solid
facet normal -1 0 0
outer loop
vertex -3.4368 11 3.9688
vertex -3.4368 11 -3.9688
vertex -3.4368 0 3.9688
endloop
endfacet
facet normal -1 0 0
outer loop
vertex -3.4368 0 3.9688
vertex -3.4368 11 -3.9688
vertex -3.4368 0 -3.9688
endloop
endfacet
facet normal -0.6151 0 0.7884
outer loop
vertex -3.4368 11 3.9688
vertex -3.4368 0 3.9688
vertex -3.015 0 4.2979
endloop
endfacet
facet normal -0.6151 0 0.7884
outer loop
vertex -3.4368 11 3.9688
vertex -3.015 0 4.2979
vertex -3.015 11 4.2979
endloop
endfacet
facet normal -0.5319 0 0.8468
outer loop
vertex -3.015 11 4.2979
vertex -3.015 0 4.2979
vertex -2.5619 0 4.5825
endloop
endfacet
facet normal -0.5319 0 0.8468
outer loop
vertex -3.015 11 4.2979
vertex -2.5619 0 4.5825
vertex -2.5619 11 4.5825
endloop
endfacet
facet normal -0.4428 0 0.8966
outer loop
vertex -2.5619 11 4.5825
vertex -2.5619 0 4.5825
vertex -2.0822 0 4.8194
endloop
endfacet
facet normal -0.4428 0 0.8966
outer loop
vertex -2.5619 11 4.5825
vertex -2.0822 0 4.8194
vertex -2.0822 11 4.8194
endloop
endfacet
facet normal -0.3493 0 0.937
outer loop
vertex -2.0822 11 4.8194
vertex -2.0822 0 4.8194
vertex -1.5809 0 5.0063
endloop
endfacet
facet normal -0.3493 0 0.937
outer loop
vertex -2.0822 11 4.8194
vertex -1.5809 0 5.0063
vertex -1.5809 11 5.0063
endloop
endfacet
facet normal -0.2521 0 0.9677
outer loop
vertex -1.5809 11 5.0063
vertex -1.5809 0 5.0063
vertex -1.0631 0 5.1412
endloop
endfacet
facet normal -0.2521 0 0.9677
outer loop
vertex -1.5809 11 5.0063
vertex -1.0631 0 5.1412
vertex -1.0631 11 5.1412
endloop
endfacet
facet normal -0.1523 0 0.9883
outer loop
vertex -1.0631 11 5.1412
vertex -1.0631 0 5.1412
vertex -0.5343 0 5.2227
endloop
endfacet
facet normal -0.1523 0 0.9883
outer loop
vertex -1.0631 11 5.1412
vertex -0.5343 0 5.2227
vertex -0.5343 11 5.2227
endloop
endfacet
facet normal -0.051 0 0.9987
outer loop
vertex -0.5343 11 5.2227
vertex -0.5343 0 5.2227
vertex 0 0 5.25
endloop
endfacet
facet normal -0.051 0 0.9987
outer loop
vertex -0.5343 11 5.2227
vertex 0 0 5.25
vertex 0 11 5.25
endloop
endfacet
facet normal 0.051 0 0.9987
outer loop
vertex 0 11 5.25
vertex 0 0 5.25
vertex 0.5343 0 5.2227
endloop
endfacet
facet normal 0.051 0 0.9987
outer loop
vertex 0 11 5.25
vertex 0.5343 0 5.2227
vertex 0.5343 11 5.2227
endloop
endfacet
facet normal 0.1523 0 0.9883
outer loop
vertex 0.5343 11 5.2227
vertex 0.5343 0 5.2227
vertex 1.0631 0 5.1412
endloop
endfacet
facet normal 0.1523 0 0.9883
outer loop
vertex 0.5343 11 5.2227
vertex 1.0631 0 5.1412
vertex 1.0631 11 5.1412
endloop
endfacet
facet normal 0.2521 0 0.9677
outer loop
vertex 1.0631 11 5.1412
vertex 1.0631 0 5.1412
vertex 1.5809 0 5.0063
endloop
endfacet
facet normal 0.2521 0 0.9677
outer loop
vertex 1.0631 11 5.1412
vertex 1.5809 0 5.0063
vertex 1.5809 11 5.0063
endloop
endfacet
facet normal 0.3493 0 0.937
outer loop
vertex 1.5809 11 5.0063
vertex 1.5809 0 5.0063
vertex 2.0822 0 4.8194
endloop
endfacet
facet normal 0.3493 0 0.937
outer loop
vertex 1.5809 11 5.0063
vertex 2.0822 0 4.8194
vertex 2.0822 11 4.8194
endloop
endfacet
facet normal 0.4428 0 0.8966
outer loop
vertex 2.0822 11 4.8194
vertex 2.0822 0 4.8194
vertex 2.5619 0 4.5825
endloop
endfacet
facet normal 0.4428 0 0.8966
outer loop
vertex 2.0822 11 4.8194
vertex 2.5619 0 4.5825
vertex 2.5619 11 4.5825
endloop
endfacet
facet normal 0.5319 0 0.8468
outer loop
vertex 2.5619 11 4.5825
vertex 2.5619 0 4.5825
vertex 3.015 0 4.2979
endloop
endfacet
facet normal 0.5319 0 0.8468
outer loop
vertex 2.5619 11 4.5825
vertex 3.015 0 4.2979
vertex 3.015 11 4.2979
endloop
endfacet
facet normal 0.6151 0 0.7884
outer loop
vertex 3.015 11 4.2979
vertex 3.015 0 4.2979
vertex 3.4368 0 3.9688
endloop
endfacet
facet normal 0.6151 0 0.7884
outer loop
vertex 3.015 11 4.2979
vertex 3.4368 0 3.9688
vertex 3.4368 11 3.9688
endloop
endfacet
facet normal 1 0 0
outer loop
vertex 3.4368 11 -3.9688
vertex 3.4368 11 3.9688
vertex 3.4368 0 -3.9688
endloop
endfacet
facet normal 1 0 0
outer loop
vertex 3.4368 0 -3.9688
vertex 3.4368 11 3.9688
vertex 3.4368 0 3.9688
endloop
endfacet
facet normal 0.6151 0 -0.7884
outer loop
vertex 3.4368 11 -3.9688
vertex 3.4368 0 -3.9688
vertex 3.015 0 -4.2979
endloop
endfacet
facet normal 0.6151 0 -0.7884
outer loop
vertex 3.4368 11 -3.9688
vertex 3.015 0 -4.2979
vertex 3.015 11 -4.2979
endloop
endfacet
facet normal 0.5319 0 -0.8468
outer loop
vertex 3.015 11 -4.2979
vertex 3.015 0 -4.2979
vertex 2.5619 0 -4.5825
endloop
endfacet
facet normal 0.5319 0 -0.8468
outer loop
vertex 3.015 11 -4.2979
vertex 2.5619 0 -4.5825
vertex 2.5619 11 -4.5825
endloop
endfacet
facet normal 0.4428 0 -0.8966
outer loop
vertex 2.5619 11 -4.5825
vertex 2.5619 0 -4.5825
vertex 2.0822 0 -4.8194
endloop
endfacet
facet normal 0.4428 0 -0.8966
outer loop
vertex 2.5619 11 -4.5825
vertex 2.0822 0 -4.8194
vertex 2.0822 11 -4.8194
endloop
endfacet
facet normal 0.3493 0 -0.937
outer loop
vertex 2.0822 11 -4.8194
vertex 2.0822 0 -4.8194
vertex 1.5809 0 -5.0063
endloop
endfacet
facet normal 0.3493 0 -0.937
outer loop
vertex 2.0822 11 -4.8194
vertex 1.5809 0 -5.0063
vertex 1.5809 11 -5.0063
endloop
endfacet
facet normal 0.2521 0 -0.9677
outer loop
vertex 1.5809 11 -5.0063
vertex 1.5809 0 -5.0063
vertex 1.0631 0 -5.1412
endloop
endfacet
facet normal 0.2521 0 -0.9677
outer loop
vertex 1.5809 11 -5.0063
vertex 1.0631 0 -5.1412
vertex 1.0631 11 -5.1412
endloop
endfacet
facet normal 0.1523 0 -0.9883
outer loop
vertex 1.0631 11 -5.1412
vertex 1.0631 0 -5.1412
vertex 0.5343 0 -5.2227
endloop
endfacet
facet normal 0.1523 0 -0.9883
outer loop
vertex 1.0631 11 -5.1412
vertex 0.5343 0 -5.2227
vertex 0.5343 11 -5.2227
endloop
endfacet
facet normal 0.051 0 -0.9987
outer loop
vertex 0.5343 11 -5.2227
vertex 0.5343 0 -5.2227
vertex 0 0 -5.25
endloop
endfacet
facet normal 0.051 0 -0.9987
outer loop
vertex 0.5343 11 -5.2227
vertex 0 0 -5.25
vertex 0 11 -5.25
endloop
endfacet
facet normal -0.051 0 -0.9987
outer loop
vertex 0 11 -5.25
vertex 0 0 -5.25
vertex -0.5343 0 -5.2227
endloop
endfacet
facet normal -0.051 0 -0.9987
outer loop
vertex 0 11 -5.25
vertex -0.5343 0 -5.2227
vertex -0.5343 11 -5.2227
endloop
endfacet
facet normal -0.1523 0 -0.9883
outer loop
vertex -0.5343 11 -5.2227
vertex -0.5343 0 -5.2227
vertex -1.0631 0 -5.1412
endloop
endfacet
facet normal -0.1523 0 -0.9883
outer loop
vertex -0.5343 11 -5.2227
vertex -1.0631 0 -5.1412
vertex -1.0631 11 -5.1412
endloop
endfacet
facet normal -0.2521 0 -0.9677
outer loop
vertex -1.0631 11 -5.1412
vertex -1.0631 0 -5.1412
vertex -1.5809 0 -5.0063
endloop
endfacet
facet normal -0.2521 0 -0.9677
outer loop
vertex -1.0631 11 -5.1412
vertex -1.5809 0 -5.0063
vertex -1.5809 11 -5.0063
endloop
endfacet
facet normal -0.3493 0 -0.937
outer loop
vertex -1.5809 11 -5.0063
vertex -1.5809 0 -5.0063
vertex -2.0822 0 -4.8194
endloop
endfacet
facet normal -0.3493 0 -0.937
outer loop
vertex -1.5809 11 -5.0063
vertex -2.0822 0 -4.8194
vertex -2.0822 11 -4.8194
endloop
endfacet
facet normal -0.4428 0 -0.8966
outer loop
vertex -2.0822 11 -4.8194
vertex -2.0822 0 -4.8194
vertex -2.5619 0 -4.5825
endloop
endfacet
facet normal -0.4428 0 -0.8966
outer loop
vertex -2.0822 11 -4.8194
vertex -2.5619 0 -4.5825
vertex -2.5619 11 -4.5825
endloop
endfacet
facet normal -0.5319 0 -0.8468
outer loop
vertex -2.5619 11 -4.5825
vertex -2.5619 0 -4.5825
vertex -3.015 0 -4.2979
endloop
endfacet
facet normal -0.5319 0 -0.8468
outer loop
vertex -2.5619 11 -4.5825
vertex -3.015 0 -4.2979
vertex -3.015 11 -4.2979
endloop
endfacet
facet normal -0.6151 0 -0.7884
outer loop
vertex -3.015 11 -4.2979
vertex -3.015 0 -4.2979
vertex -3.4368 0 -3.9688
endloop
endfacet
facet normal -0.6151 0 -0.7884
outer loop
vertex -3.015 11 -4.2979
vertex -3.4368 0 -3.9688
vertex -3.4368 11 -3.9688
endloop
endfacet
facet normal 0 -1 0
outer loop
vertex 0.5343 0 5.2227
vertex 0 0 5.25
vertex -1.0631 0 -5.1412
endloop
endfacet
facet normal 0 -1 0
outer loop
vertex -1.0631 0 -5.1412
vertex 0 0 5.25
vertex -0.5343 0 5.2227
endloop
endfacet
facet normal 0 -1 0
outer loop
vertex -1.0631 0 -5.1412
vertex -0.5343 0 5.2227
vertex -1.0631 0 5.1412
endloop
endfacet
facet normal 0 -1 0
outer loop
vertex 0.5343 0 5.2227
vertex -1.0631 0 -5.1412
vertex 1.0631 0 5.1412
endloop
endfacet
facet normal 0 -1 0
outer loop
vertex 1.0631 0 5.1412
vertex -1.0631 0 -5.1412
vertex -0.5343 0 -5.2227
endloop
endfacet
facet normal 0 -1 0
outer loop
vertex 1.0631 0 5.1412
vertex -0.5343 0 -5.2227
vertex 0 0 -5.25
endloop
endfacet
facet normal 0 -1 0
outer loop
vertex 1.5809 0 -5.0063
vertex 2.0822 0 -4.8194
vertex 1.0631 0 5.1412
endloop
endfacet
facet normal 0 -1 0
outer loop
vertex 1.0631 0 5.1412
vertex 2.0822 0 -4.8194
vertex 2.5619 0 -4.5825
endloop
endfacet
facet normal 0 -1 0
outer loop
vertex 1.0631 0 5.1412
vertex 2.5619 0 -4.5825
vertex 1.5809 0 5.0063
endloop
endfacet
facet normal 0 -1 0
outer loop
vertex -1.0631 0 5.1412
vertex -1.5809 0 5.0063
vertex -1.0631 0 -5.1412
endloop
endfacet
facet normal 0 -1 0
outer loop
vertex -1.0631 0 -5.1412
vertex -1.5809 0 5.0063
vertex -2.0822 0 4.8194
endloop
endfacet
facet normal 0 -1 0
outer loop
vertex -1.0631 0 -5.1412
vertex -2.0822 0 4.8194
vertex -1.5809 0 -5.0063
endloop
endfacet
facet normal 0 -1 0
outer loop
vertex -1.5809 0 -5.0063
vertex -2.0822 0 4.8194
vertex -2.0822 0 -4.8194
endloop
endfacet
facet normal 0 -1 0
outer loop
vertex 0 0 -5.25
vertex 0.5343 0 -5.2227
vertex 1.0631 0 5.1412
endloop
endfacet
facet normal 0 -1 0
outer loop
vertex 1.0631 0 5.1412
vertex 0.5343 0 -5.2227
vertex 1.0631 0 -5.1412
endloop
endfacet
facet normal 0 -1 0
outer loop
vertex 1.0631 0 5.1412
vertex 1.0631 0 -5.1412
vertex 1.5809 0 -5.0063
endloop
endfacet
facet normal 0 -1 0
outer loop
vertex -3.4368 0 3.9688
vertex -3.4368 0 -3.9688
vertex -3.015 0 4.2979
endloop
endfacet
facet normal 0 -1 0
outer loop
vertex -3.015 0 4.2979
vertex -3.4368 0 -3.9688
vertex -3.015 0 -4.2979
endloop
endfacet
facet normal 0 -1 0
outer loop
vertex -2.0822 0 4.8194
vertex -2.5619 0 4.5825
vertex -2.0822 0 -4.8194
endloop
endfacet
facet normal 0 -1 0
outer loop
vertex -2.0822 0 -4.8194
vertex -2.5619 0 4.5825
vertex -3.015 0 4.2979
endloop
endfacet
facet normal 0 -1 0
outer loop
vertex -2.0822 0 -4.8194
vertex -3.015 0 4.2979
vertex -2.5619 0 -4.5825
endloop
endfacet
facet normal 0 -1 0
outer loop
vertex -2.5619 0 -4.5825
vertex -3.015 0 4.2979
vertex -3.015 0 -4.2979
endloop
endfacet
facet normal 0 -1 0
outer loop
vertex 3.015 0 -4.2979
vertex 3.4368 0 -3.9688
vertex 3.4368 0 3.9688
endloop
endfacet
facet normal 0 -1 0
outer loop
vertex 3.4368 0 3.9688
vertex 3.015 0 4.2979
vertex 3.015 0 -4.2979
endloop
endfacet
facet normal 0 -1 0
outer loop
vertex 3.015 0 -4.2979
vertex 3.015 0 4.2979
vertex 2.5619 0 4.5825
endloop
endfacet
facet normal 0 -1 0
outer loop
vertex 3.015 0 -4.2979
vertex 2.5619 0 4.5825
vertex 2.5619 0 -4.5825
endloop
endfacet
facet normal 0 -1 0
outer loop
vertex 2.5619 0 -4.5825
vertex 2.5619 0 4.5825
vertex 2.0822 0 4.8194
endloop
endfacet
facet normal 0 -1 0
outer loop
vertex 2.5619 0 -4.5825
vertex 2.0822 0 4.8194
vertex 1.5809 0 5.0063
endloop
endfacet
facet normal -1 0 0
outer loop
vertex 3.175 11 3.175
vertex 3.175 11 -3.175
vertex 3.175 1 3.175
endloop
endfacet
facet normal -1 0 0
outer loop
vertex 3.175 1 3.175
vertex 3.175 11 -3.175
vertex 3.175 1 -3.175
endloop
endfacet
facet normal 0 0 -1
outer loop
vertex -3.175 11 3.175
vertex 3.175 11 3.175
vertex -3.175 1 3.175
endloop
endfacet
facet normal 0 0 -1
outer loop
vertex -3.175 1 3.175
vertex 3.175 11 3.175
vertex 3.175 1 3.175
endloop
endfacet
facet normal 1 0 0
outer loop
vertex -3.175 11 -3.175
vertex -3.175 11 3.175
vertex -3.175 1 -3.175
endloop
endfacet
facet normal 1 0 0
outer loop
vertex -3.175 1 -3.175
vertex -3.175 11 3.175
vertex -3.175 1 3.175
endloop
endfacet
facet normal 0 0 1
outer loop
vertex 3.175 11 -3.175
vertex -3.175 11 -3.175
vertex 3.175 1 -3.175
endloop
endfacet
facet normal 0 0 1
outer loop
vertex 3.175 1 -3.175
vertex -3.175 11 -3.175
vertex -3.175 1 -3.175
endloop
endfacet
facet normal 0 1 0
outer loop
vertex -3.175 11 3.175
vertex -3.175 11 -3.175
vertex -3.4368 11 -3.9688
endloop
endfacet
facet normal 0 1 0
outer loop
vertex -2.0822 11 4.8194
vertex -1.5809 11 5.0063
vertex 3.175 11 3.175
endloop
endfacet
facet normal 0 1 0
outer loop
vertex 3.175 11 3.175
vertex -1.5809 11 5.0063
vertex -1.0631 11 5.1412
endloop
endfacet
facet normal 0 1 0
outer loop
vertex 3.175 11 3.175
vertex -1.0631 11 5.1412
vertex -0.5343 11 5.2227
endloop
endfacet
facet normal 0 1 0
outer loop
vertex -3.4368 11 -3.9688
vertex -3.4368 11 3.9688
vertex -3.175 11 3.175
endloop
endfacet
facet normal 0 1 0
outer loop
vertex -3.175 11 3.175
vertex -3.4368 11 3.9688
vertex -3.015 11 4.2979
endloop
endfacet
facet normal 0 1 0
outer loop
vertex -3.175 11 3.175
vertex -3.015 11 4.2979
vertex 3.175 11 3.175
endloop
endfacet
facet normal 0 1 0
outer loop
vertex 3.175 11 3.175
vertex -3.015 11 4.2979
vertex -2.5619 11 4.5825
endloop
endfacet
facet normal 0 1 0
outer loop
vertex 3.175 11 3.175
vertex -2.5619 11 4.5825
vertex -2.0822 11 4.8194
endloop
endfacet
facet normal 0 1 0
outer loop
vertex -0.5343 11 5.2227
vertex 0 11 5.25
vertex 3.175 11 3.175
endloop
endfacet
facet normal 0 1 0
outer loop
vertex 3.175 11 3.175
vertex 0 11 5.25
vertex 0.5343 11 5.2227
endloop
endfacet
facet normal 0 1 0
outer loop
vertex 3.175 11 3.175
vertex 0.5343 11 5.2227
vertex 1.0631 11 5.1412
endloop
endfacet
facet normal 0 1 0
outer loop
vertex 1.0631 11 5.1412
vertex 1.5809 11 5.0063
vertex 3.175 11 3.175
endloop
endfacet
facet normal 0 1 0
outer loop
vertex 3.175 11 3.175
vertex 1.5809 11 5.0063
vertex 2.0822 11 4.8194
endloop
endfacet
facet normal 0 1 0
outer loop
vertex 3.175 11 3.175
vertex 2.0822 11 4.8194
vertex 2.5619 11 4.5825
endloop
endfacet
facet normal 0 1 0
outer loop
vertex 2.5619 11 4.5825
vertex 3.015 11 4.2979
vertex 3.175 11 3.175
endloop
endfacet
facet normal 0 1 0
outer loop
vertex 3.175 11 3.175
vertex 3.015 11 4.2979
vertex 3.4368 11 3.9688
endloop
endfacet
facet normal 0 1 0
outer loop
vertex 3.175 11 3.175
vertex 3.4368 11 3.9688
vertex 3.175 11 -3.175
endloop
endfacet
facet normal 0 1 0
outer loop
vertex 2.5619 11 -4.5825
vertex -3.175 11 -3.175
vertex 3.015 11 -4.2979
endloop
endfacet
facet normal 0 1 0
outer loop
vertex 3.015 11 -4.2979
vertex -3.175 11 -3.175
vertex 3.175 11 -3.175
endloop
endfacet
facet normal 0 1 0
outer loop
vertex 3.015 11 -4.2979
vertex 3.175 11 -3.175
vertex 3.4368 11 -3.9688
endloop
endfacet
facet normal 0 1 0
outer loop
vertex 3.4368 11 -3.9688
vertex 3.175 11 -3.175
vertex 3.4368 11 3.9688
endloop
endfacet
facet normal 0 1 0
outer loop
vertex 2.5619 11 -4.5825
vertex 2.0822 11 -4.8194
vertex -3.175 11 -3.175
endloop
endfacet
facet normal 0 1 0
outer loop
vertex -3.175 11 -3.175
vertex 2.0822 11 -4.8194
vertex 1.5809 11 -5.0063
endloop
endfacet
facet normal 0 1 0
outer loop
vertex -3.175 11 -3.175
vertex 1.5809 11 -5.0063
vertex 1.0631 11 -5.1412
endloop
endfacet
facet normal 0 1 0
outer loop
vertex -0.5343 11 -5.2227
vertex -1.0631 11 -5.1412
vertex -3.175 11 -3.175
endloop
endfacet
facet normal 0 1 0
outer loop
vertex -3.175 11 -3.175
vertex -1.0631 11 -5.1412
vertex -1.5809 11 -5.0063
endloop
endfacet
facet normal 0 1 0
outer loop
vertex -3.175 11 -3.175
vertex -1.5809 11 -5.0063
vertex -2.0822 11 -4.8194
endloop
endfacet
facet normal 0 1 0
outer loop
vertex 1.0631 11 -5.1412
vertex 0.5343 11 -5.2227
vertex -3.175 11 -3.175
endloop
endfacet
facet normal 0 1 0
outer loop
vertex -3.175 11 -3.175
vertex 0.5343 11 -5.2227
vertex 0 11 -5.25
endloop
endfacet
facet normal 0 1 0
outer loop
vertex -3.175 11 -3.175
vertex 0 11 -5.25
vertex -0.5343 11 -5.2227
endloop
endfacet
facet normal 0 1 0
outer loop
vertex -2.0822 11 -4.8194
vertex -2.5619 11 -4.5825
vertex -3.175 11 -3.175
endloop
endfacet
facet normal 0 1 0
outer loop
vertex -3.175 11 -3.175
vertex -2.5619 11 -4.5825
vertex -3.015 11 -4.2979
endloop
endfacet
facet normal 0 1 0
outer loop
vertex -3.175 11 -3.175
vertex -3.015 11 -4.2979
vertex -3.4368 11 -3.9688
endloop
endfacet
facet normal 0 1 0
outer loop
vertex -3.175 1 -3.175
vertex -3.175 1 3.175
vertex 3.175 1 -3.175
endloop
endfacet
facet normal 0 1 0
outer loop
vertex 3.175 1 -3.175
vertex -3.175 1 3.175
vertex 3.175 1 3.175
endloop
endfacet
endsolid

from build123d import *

# Parameters (mm, degrees)
SKETCH1_W           = 6.873579398
SKETCH1_H           = 7.9375
BOSS_EXTRUDE1_DEPTH = 1
SKETCH2_W           = 6.35
SKETCH2_H           = 6.35
BOSS_EXTRUDE2_DEPTH = 10


with BuildPart() as part:
    # Sketch1 → Boss-Extrude1 (new body)
    with BuildSketch(Plane(origin=(0, 0, 0), x_dir=(1, 0, 0), z_dir=(0, 1, 0))):
        Rectangle(SKETCH1_W, SKETCH1_H)
        with BuildLine():
            ThreePointArc((3.436789699, 3.96875), (0, 5.25), (-3.436789699, 3.96875))
            Line((-3.436789699, 3.96875), (3.436789699, 3.96875))
        make_face()
        with BuildLine():
            Line((3.436789699, -3.96875), (-3.436789699, -3.96875))
            ThreePointArc((-3.436789699, -3.96875), (0, -5.25), (3.436789699, -3.96875))
        make_face()
    extrude(amount=BOSS_EXTRUDE1_DEPTH)

    # Sketch2 → Boss-Extrude2 (add)
    with BuildSketch(Plane(origin=(0, 1, 0), x_dir=(1, 0, 0), z_dir=(0, 1, 0))):
        with BuildLine():
            Line((-3.436789699, 3.96875), (-3.436789699, -3.96875))
            ThreePointArc((-3.436789699, -3.96875), (0, -5.25), (3.436789699, -3.96875))
            Line((3.436789699, -3.96875), (3.436789699, 3.96875))
            ThreePointArc((3.436789699, 3.96875), (0, 5.25), (-3.436789699, 3.96875))
        make_face()
        Rectangle(SKETCH2_W, SKETCH2_H, mode=Mode.SUBTRACT)
    extrude(amount=BOSS_EXTRUDE2_DEPTH)


solid = part.part
